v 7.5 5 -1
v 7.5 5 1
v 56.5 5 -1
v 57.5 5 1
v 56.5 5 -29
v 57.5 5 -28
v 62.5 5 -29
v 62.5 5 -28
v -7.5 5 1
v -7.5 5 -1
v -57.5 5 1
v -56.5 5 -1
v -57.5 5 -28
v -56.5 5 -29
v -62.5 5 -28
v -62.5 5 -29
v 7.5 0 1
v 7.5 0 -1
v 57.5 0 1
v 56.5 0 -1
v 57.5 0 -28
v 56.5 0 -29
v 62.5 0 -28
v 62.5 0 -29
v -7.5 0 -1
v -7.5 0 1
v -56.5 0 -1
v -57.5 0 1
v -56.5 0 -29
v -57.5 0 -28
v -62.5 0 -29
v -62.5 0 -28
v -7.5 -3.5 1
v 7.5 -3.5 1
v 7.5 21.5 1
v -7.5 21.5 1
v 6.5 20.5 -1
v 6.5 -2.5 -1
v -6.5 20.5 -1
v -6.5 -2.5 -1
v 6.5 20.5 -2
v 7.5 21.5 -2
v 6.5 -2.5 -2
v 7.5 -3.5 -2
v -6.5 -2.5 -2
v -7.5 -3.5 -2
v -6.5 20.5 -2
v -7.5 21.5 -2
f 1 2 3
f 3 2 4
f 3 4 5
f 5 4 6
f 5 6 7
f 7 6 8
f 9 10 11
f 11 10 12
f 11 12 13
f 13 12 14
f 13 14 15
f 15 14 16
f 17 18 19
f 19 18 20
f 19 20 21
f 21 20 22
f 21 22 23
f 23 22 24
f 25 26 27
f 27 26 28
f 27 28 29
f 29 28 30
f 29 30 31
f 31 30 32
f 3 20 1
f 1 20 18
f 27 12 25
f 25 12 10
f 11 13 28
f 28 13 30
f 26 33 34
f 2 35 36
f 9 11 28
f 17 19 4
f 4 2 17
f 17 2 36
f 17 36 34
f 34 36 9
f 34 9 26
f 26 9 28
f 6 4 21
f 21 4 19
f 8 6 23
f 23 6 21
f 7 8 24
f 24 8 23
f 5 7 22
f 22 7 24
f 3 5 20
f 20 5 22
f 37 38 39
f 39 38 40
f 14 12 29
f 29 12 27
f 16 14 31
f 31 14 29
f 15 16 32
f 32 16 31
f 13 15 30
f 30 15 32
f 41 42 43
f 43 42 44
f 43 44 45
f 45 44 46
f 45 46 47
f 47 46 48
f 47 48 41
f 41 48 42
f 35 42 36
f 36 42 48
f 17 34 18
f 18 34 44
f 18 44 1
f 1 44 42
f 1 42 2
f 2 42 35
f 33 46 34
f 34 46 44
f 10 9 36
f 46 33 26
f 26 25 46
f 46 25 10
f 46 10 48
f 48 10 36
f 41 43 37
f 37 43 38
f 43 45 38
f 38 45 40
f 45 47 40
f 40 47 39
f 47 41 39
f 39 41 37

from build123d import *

# Parameters (mm, degrees)
BOSS_EXTRUDE2_DEPTH = 5
SKETCH3_W           = 15
SKETCH3_H           = 25
SKETCH3_W_2         = 13
SKETCH3_H_2         = 23
BOSS_EXTRUDE3_DEPTH = 1
SKETCH5_W           = 15
SKETCH5_H           = 25
BOSS_EXTRUDE5_DEPTH = 2


with BuildPart() as part:
    # Sketch1 → Boss-Extrude2 (new body)
    with BuildSketch(Plane(origin=(0, 0, 0), x_dir=(1, 0, 0), z_dir=(0, 1, 0))):
        Polygon((-57.5, -1), (57.5, -1), (57.5, 28), (62.5, 28), (62.5, 29), (56.5, 29), (56.5, 1), (-56.5, 1), (-56.5, 29), (-62.5, 29), (-62.5, 28), (-57.5, 28), align=None)
    extrude(amount=BOSS_EXTRUDE2_DEPTH)

    # Sketch3 → Boss-Extrude3 (add)
    with BuildSketch(Plane(origin=(0, 0, -1), x_dir=(-1, 0, 0), z_dir=(0, 0, -1))):
        with Locations((0, 9)):
            Rectangle(SKETCH3_W, SKETCH3_H)
        with Locations((0, 9)):
            Rectangle(SKETCH3_W_2, SKETCH3_H_2, mode=Mode.SUBTRACT)
    extrude(amount=BOSS_EXTRUDE3_DEPTH)

    # Sketch5 → Boss-Extrude5 (add)
    with BuildSketch(Plane.XY.offset(-1)):
        with Locations((0, 9)):
            Rectangle(SKETCH5_W, SKETCH5_H)
    extrude(amount=BOSS_EXTRUDE5_DEPTH)


solid = part.part
